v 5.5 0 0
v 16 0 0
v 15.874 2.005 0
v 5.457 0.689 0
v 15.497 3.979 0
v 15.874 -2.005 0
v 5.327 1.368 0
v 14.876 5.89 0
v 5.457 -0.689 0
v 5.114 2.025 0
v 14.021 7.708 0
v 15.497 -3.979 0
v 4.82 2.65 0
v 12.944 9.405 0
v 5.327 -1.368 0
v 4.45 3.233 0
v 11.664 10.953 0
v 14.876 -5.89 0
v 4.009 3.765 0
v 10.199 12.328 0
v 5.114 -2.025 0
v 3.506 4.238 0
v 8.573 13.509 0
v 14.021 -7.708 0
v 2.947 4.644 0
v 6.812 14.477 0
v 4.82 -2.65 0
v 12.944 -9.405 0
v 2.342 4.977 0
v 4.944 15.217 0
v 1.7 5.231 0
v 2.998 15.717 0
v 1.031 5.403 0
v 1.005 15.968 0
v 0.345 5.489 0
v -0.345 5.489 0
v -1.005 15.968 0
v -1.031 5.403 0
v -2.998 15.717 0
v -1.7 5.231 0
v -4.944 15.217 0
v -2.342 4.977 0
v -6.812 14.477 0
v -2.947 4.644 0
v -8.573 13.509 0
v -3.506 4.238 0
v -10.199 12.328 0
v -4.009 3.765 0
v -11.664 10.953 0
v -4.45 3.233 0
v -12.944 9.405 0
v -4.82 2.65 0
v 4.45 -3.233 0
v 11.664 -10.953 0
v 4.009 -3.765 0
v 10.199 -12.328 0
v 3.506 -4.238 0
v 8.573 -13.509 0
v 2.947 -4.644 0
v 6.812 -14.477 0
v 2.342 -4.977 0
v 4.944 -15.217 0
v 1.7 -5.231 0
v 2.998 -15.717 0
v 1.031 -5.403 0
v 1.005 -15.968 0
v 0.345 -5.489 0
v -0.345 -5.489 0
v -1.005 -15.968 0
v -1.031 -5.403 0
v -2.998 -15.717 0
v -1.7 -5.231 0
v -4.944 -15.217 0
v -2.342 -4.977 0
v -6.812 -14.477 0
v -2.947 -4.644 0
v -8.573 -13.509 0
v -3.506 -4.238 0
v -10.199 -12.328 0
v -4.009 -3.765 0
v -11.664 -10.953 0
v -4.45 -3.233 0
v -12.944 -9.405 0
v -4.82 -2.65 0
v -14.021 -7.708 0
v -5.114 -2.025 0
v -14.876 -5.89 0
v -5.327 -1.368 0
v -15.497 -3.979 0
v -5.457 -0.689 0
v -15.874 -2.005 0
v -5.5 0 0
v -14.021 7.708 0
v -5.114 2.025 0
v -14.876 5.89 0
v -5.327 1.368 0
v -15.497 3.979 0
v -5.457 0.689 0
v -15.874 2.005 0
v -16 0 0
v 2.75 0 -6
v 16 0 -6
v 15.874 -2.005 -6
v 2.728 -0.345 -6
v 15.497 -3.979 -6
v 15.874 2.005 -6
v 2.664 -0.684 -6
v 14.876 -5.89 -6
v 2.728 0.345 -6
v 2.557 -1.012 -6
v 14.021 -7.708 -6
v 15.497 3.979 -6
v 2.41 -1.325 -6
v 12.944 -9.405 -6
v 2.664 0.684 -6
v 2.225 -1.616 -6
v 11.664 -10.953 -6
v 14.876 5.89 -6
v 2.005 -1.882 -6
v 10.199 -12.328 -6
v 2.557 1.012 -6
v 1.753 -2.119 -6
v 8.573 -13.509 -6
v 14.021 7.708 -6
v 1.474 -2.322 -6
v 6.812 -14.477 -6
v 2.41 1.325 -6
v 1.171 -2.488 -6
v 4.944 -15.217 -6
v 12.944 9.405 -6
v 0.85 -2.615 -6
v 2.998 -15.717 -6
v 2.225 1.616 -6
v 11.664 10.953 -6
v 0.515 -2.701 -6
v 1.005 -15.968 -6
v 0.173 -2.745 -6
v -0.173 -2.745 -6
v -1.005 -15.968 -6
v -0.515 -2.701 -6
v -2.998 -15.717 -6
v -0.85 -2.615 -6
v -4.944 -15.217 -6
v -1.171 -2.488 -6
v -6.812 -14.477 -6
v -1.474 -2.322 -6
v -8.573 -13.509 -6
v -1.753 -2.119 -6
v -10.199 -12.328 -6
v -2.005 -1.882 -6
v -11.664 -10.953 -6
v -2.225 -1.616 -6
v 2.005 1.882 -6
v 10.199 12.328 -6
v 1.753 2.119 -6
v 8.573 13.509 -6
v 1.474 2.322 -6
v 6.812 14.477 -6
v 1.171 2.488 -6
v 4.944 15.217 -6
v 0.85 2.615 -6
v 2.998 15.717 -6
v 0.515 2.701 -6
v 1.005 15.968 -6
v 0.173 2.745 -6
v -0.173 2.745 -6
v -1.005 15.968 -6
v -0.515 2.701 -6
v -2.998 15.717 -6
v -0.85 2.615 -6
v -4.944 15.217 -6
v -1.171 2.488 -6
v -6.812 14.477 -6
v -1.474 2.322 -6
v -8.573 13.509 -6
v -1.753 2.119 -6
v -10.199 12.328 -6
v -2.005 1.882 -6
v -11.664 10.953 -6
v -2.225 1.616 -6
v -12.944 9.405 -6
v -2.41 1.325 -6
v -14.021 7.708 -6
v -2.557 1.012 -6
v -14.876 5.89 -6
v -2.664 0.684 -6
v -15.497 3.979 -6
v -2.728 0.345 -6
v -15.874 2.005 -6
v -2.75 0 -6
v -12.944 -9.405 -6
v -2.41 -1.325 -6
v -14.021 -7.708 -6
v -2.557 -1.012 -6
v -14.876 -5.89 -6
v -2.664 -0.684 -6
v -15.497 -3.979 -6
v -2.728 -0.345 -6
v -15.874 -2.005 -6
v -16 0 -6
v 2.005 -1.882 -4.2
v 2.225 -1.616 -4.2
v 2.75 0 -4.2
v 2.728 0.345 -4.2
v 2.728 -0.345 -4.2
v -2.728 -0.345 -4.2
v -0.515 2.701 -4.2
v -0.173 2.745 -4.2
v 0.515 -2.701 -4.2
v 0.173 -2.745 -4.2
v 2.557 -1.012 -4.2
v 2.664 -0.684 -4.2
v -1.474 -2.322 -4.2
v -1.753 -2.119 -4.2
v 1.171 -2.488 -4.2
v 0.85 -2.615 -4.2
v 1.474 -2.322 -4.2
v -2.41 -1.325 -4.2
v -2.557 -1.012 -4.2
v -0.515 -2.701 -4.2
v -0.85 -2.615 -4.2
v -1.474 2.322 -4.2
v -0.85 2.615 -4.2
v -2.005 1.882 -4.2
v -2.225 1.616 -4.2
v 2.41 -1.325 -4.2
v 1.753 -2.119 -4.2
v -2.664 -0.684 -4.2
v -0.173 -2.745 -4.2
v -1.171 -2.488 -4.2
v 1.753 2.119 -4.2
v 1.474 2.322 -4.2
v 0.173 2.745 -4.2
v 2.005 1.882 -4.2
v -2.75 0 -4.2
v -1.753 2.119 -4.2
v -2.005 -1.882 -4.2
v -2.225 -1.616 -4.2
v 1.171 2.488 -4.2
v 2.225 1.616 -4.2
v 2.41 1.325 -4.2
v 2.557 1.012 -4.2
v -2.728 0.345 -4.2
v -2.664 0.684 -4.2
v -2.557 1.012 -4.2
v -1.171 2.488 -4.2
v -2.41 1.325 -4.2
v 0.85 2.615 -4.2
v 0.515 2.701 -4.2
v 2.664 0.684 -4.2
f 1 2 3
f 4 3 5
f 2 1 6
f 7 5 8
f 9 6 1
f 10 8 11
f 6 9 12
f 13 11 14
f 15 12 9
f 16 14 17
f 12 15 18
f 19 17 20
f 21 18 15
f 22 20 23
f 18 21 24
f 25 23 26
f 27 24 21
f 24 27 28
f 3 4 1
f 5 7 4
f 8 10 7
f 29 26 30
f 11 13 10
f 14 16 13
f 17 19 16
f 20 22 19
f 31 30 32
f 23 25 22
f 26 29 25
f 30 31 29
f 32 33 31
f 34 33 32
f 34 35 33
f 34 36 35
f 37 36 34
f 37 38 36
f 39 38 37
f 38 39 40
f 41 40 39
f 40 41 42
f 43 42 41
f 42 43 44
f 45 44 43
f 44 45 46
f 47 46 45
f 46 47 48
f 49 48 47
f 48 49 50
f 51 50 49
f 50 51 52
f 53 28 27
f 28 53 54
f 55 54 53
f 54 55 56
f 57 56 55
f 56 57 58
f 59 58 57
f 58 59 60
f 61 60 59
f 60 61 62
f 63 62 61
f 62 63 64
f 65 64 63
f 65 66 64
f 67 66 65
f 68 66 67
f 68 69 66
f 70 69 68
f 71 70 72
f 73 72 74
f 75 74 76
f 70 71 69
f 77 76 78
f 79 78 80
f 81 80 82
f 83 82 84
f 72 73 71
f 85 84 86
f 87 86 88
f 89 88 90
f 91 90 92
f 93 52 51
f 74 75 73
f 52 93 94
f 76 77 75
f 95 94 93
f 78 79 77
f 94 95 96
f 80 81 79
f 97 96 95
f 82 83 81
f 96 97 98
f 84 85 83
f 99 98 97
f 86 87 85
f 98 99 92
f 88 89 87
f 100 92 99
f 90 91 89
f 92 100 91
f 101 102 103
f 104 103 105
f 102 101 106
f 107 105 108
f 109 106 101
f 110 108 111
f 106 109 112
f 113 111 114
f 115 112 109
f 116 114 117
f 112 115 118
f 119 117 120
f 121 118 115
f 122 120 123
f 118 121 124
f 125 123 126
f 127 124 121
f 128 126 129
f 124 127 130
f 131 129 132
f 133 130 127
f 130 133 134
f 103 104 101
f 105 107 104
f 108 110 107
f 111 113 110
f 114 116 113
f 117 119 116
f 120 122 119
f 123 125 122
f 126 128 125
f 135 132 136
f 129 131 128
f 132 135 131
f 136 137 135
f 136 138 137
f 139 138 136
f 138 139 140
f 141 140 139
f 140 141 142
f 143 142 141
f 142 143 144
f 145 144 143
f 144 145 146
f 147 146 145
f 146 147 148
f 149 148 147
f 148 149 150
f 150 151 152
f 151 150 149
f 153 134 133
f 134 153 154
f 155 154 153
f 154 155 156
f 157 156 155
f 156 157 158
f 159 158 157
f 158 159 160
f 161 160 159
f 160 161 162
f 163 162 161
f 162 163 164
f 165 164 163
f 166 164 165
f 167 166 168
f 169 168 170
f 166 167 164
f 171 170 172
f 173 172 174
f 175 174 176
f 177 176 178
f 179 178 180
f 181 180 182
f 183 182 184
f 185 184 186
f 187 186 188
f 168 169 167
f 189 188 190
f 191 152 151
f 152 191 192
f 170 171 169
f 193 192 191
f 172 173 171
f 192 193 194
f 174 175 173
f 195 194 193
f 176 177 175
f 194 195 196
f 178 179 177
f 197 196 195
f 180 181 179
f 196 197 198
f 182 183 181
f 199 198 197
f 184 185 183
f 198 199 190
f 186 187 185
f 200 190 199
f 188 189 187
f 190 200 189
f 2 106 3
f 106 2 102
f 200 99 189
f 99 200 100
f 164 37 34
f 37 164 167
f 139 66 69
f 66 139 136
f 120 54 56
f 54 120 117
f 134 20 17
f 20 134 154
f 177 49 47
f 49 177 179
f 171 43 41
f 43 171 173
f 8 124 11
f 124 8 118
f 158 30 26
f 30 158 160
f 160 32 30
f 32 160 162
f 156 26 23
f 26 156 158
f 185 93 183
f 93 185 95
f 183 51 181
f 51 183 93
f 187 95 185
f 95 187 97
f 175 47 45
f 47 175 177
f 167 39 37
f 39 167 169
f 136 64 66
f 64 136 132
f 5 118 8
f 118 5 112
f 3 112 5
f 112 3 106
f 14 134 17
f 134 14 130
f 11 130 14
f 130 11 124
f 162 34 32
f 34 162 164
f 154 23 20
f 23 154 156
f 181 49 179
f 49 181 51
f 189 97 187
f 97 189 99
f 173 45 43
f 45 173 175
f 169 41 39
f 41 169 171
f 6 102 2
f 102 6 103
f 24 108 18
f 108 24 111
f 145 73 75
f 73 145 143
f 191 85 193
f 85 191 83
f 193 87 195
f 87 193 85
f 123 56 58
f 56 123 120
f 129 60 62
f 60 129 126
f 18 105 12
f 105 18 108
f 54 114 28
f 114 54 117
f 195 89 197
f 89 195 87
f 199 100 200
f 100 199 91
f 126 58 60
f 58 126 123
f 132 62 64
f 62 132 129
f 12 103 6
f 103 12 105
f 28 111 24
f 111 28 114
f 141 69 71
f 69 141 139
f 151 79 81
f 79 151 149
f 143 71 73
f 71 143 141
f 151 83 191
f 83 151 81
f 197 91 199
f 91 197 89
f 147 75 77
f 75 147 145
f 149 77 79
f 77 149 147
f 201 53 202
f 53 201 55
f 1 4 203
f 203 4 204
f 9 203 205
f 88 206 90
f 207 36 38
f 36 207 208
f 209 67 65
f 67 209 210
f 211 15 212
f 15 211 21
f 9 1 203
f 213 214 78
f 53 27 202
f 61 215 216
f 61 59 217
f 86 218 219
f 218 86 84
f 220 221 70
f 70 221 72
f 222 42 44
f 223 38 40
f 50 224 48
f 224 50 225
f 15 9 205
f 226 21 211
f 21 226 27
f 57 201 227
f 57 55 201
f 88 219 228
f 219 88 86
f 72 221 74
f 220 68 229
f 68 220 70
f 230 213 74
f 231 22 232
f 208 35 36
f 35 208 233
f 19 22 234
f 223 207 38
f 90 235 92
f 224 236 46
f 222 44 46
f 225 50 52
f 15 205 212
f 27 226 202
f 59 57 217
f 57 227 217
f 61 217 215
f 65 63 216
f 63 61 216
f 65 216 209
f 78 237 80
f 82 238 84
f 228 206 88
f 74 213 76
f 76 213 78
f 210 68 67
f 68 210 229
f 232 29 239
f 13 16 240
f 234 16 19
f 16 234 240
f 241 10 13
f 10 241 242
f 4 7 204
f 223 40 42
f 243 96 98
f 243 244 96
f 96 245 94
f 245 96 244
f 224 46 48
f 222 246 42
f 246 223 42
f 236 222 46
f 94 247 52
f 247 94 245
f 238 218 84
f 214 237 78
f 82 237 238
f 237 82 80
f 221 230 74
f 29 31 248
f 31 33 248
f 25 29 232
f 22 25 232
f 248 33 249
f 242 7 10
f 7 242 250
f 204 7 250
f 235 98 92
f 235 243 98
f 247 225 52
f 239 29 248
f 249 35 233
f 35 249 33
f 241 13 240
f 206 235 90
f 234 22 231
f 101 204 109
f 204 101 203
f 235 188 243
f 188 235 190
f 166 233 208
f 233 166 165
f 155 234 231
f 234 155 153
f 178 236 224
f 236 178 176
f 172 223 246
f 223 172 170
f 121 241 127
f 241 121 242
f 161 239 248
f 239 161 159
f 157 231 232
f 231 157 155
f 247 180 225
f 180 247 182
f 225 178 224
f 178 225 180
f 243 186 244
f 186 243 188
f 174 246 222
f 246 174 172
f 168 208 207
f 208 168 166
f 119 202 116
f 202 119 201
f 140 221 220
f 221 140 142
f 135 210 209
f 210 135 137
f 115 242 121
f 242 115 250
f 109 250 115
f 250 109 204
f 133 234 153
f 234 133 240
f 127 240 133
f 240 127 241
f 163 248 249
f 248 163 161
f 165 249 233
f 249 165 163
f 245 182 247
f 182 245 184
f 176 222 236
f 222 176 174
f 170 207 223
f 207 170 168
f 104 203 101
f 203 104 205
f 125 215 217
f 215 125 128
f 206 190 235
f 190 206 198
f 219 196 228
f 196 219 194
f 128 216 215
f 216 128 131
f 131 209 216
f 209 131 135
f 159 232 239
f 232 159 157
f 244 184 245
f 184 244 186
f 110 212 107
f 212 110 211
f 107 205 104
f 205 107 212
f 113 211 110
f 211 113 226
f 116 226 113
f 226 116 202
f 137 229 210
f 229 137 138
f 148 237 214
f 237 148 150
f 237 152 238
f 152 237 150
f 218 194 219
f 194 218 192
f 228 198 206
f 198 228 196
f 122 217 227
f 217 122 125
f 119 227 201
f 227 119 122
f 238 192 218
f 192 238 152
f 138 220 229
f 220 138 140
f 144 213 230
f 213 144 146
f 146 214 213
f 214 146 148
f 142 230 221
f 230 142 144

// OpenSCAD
$fn = 50;


difference() {
	union() {
		translate(v = [0, 0, -6.0000000000]) {
			cylinder(h = 6, r = 7.0000000000);
		}
		translate(v = [0, 0, -6.0000000000]) {
			cylinder(h = 6, r = 16.0000000000);
		}
	}
	union() {
		translate(v = [0, 0, 0]) {
			rotate(a = [0, 0, 0]) {
				difference() {
					union() {
						#translate(v = [0, 0, -6.0000000000]) {
							cylinder(h = 6, r = 2.2500000000);
						}
						#translate(v = [0, 0, -4.2000000000]) {
							cylinder(h = 4.2000000000, r = 7.0000000000, r1 = 2.7500000000, r2 = 5.5000000000);
						}
						#translate(v = [0, 0, -6.0000000000]) {
							cylinder(h = 6, r = 2.7500000000);
						}
						#translate(v = [0, 0, -6.0000000000]) {
							cylinder(h = 6, r = 2.2500000000);
						}
					}
					union();
				}
			}
		}
	}
}
